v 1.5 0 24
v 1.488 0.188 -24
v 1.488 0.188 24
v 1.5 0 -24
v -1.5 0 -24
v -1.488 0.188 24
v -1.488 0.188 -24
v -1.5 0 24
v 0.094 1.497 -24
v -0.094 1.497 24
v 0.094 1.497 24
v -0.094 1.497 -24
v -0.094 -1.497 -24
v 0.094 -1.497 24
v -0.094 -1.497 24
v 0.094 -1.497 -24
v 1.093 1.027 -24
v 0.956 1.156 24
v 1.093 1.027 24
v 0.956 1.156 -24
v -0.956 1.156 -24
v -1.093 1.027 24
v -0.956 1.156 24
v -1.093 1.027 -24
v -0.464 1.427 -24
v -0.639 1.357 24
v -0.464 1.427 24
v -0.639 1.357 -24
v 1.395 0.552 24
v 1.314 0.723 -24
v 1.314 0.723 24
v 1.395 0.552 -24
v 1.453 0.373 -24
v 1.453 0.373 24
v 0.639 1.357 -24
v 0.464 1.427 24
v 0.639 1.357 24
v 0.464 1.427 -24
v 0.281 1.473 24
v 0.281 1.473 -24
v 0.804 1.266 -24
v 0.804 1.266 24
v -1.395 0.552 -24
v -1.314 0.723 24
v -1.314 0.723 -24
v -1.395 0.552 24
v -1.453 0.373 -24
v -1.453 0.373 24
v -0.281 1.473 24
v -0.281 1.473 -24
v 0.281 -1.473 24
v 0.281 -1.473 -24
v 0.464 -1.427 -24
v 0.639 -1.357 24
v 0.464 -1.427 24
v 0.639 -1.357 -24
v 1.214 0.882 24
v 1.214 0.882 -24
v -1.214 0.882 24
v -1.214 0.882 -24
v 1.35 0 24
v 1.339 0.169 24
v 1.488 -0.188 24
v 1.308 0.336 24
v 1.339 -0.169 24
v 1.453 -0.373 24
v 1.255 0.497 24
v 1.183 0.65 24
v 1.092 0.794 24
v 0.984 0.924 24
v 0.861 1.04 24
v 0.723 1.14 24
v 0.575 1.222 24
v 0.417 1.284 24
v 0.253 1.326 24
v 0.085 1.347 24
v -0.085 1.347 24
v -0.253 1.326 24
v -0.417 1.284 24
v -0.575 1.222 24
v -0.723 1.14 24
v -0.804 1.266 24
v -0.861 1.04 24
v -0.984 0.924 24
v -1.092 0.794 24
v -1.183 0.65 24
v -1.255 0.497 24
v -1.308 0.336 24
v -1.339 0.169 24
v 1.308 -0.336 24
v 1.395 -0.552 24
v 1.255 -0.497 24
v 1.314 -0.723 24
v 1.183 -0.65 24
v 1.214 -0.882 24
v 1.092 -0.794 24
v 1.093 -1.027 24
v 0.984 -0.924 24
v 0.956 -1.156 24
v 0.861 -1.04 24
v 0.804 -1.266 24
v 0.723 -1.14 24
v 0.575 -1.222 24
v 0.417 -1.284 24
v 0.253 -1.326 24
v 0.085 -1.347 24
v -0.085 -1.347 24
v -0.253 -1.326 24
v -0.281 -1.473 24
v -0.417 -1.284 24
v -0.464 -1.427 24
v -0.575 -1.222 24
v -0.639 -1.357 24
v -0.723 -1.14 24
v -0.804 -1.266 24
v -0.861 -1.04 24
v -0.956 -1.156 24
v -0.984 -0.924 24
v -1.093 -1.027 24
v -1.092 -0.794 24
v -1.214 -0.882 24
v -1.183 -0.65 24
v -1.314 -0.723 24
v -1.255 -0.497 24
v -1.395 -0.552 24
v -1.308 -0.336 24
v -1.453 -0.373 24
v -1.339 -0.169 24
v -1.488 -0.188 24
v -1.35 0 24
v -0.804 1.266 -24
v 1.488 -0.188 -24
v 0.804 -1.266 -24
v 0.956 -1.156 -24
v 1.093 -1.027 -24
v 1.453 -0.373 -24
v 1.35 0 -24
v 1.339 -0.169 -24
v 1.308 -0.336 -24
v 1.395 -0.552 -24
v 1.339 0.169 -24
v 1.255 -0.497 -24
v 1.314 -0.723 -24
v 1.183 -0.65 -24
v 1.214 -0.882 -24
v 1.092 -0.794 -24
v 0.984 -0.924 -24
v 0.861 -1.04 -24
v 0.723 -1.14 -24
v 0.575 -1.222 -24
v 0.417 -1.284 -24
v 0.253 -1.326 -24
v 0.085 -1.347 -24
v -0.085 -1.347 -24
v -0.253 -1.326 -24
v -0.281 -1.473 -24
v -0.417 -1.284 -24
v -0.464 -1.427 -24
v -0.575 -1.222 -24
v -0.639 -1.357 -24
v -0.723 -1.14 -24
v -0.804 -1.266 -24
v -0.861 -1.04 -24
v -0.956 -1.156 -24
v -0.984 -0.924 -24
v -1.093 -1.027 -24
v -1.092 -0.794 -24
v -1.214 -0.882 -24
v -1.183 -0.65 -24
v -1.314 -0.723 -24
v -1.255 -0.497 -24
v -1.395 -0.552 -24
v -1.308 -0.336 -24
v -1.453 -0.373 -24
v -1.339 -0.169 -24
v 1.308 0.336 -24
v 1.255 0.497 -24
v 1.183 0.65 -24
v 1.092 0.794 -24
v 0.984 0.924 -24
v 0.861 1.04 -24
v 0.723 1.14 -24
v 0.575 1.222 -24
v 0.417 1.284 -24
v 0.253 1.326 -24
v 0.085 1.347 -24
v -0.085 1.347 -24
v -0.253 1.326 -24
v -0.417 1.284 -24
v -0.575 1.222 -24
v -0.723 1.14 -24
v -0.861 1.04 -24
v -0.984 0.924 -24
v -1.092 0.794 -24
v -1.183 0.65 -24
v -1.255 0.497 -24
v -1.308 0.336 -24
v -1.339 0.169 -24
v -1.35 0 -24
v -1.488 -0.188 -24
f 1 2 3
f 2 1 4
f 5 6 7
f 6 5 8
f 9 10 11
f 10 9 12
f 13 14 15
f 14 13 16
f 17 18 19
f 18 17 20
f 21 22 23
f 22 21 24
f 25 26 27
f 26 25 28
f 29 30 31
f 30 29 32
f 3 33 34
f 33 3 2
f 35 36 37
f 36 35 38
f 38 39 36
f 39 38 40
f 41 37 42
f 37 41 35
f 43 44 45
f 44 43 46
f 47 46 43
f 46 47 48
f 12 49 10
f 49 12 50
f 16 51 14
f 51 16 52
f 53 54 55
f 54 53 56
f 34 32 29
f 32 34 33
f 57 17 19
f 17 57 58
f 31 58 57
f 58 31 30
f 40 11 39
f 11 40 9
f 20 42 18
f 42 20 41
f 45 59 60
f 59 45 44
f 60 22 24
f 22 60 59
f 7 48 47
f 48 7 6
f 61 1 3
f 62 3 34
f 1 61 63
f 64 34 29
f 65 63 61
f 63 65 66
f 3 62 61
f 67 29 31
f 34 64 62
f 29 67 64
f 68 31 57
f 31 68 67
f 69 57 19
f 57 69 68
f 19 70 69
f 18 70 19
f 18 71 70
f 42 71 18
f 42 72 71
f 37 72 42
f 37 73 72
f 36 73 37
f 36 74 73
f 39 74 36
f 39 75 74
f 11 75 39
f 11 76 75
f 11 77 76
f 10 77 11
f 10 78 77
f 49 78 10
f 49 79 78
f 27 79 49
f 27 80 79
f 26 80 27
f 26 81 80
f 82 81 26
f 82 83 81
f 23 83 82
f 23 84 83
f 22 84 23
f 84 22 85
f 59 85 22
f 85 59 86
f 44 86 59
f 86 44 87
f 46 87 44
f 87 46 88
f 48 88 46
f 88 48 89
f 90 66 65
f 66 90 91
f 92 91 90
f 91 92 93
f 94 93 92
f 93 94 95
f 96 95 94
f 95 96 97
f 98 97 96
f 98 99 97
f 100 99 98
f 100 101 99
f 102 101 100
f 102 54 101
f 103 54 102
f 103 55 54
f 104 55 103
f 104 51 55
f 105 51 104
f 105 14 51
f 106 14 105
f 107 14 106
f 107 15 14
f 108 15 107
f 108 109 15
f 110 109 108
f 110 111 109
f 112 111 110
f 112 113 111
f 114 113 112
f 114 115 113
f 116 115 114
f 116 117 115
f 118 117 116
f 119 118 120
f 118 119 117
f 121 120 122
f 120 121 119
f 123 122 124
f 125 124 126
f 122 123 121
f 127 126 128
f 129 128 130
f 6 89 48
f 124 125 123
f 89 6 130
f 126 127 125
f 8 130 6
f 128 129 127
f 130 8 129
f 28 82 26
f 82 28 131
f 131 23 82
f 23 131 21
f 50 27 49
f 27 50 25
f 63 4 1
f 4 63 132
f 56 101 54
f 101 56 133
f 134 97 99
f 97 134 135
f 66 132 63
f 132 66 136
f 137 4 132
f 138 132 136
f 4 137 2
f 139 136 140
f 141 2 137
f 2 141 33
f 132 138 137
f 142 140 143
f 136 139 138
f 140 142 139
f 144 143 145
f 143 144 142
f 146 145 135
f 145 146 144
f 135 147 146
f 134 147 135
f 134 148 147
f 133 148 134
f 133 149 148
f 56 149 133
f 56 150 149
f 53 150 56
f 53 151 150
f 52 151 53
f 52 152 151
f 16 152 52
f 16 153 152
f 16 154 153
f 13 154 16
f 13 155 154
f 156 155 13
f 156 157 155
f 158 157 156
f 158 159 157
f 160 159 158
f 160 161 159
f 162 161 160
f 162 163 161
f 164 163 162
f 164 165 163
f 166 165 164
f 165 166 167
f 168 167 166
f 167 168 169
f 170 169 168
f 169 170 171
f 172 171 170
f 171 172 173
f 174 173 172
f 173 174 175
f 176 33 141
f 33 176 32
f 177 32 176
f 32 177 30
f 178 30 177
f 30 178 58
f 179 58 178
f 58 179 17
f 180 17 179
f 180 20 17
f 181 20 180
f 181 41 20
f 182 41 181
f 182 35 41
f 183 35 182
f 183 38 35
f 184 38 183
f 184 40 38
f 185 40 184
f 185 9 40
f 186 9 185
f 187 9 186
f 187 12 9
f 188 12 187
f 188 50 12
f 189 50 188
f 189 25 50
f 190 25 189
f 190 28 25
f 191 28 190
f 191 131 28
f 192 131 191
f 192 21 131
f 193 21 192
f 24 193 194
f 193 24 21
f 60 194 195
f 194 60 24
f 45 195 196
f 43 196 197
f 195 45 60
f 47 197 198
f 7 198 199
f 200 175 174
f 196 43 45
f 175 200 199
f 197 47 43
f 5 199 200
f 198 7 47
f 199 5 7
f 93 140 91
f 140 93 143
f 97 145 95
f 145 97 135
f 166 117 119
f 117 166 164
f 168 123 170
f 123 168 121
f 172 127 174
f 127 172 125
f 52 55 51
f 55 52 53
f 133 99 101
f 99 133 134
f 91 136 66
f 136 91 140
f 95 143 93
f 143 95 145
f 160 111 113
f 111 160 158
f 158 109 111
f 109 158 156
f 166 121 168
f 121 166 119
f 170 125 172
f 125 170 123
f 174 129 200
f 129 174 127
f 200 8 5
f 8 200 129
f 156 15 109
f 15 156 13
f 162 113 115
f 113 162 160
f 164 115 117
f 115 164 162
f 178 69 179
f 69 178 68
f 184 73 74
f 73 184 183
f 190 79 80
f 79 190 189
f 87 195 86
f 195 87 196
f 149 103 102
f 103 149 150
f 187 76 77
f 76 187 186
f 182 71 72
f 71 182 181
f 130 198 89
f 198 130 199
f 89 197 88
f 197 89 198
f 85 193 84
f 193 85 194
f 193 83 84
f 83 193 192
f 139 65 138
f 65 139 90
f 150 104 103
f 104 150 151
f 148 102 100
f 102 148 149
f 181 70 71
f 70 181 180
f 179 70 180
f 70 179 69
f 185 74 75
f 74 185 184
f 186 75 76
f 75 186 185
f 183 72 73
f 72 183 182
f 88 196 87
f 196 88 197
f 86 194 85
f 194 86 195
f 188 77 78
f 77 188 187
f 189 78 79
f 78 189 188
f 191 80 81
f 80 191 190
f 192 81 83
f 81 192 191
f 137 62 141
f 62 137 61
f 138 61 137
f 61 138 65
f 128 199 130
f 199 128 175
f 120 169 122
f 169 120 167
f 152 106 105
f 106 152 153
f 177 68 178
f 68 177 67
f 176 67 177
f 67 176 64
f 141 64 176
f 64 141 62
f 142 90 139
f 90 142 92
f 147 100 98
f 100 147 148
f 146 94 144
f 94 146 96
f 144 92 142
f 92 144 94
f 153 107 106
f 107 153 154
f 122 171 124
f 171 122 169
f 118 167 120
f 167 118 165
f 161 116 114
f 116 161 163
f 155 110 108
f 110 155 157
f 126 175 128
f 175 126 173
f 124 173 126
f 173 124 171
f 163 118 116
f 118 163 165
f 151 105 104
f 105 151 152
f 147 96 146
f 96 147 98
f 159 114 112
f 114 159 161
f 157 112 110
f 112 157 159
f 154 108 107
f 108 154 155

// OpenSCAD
$fn = 50;


difference() {
	union() {
		translate(v = [0, 0, -24.0000000000]) {
			cylinder(h = 48, r = 1.5000000000);
		}
	}
	union() {
		translate(v = [0, 0, -100.0000000000]) {
			cylinder(h = 200, r = 1.3500000000);
		}
	}
}
